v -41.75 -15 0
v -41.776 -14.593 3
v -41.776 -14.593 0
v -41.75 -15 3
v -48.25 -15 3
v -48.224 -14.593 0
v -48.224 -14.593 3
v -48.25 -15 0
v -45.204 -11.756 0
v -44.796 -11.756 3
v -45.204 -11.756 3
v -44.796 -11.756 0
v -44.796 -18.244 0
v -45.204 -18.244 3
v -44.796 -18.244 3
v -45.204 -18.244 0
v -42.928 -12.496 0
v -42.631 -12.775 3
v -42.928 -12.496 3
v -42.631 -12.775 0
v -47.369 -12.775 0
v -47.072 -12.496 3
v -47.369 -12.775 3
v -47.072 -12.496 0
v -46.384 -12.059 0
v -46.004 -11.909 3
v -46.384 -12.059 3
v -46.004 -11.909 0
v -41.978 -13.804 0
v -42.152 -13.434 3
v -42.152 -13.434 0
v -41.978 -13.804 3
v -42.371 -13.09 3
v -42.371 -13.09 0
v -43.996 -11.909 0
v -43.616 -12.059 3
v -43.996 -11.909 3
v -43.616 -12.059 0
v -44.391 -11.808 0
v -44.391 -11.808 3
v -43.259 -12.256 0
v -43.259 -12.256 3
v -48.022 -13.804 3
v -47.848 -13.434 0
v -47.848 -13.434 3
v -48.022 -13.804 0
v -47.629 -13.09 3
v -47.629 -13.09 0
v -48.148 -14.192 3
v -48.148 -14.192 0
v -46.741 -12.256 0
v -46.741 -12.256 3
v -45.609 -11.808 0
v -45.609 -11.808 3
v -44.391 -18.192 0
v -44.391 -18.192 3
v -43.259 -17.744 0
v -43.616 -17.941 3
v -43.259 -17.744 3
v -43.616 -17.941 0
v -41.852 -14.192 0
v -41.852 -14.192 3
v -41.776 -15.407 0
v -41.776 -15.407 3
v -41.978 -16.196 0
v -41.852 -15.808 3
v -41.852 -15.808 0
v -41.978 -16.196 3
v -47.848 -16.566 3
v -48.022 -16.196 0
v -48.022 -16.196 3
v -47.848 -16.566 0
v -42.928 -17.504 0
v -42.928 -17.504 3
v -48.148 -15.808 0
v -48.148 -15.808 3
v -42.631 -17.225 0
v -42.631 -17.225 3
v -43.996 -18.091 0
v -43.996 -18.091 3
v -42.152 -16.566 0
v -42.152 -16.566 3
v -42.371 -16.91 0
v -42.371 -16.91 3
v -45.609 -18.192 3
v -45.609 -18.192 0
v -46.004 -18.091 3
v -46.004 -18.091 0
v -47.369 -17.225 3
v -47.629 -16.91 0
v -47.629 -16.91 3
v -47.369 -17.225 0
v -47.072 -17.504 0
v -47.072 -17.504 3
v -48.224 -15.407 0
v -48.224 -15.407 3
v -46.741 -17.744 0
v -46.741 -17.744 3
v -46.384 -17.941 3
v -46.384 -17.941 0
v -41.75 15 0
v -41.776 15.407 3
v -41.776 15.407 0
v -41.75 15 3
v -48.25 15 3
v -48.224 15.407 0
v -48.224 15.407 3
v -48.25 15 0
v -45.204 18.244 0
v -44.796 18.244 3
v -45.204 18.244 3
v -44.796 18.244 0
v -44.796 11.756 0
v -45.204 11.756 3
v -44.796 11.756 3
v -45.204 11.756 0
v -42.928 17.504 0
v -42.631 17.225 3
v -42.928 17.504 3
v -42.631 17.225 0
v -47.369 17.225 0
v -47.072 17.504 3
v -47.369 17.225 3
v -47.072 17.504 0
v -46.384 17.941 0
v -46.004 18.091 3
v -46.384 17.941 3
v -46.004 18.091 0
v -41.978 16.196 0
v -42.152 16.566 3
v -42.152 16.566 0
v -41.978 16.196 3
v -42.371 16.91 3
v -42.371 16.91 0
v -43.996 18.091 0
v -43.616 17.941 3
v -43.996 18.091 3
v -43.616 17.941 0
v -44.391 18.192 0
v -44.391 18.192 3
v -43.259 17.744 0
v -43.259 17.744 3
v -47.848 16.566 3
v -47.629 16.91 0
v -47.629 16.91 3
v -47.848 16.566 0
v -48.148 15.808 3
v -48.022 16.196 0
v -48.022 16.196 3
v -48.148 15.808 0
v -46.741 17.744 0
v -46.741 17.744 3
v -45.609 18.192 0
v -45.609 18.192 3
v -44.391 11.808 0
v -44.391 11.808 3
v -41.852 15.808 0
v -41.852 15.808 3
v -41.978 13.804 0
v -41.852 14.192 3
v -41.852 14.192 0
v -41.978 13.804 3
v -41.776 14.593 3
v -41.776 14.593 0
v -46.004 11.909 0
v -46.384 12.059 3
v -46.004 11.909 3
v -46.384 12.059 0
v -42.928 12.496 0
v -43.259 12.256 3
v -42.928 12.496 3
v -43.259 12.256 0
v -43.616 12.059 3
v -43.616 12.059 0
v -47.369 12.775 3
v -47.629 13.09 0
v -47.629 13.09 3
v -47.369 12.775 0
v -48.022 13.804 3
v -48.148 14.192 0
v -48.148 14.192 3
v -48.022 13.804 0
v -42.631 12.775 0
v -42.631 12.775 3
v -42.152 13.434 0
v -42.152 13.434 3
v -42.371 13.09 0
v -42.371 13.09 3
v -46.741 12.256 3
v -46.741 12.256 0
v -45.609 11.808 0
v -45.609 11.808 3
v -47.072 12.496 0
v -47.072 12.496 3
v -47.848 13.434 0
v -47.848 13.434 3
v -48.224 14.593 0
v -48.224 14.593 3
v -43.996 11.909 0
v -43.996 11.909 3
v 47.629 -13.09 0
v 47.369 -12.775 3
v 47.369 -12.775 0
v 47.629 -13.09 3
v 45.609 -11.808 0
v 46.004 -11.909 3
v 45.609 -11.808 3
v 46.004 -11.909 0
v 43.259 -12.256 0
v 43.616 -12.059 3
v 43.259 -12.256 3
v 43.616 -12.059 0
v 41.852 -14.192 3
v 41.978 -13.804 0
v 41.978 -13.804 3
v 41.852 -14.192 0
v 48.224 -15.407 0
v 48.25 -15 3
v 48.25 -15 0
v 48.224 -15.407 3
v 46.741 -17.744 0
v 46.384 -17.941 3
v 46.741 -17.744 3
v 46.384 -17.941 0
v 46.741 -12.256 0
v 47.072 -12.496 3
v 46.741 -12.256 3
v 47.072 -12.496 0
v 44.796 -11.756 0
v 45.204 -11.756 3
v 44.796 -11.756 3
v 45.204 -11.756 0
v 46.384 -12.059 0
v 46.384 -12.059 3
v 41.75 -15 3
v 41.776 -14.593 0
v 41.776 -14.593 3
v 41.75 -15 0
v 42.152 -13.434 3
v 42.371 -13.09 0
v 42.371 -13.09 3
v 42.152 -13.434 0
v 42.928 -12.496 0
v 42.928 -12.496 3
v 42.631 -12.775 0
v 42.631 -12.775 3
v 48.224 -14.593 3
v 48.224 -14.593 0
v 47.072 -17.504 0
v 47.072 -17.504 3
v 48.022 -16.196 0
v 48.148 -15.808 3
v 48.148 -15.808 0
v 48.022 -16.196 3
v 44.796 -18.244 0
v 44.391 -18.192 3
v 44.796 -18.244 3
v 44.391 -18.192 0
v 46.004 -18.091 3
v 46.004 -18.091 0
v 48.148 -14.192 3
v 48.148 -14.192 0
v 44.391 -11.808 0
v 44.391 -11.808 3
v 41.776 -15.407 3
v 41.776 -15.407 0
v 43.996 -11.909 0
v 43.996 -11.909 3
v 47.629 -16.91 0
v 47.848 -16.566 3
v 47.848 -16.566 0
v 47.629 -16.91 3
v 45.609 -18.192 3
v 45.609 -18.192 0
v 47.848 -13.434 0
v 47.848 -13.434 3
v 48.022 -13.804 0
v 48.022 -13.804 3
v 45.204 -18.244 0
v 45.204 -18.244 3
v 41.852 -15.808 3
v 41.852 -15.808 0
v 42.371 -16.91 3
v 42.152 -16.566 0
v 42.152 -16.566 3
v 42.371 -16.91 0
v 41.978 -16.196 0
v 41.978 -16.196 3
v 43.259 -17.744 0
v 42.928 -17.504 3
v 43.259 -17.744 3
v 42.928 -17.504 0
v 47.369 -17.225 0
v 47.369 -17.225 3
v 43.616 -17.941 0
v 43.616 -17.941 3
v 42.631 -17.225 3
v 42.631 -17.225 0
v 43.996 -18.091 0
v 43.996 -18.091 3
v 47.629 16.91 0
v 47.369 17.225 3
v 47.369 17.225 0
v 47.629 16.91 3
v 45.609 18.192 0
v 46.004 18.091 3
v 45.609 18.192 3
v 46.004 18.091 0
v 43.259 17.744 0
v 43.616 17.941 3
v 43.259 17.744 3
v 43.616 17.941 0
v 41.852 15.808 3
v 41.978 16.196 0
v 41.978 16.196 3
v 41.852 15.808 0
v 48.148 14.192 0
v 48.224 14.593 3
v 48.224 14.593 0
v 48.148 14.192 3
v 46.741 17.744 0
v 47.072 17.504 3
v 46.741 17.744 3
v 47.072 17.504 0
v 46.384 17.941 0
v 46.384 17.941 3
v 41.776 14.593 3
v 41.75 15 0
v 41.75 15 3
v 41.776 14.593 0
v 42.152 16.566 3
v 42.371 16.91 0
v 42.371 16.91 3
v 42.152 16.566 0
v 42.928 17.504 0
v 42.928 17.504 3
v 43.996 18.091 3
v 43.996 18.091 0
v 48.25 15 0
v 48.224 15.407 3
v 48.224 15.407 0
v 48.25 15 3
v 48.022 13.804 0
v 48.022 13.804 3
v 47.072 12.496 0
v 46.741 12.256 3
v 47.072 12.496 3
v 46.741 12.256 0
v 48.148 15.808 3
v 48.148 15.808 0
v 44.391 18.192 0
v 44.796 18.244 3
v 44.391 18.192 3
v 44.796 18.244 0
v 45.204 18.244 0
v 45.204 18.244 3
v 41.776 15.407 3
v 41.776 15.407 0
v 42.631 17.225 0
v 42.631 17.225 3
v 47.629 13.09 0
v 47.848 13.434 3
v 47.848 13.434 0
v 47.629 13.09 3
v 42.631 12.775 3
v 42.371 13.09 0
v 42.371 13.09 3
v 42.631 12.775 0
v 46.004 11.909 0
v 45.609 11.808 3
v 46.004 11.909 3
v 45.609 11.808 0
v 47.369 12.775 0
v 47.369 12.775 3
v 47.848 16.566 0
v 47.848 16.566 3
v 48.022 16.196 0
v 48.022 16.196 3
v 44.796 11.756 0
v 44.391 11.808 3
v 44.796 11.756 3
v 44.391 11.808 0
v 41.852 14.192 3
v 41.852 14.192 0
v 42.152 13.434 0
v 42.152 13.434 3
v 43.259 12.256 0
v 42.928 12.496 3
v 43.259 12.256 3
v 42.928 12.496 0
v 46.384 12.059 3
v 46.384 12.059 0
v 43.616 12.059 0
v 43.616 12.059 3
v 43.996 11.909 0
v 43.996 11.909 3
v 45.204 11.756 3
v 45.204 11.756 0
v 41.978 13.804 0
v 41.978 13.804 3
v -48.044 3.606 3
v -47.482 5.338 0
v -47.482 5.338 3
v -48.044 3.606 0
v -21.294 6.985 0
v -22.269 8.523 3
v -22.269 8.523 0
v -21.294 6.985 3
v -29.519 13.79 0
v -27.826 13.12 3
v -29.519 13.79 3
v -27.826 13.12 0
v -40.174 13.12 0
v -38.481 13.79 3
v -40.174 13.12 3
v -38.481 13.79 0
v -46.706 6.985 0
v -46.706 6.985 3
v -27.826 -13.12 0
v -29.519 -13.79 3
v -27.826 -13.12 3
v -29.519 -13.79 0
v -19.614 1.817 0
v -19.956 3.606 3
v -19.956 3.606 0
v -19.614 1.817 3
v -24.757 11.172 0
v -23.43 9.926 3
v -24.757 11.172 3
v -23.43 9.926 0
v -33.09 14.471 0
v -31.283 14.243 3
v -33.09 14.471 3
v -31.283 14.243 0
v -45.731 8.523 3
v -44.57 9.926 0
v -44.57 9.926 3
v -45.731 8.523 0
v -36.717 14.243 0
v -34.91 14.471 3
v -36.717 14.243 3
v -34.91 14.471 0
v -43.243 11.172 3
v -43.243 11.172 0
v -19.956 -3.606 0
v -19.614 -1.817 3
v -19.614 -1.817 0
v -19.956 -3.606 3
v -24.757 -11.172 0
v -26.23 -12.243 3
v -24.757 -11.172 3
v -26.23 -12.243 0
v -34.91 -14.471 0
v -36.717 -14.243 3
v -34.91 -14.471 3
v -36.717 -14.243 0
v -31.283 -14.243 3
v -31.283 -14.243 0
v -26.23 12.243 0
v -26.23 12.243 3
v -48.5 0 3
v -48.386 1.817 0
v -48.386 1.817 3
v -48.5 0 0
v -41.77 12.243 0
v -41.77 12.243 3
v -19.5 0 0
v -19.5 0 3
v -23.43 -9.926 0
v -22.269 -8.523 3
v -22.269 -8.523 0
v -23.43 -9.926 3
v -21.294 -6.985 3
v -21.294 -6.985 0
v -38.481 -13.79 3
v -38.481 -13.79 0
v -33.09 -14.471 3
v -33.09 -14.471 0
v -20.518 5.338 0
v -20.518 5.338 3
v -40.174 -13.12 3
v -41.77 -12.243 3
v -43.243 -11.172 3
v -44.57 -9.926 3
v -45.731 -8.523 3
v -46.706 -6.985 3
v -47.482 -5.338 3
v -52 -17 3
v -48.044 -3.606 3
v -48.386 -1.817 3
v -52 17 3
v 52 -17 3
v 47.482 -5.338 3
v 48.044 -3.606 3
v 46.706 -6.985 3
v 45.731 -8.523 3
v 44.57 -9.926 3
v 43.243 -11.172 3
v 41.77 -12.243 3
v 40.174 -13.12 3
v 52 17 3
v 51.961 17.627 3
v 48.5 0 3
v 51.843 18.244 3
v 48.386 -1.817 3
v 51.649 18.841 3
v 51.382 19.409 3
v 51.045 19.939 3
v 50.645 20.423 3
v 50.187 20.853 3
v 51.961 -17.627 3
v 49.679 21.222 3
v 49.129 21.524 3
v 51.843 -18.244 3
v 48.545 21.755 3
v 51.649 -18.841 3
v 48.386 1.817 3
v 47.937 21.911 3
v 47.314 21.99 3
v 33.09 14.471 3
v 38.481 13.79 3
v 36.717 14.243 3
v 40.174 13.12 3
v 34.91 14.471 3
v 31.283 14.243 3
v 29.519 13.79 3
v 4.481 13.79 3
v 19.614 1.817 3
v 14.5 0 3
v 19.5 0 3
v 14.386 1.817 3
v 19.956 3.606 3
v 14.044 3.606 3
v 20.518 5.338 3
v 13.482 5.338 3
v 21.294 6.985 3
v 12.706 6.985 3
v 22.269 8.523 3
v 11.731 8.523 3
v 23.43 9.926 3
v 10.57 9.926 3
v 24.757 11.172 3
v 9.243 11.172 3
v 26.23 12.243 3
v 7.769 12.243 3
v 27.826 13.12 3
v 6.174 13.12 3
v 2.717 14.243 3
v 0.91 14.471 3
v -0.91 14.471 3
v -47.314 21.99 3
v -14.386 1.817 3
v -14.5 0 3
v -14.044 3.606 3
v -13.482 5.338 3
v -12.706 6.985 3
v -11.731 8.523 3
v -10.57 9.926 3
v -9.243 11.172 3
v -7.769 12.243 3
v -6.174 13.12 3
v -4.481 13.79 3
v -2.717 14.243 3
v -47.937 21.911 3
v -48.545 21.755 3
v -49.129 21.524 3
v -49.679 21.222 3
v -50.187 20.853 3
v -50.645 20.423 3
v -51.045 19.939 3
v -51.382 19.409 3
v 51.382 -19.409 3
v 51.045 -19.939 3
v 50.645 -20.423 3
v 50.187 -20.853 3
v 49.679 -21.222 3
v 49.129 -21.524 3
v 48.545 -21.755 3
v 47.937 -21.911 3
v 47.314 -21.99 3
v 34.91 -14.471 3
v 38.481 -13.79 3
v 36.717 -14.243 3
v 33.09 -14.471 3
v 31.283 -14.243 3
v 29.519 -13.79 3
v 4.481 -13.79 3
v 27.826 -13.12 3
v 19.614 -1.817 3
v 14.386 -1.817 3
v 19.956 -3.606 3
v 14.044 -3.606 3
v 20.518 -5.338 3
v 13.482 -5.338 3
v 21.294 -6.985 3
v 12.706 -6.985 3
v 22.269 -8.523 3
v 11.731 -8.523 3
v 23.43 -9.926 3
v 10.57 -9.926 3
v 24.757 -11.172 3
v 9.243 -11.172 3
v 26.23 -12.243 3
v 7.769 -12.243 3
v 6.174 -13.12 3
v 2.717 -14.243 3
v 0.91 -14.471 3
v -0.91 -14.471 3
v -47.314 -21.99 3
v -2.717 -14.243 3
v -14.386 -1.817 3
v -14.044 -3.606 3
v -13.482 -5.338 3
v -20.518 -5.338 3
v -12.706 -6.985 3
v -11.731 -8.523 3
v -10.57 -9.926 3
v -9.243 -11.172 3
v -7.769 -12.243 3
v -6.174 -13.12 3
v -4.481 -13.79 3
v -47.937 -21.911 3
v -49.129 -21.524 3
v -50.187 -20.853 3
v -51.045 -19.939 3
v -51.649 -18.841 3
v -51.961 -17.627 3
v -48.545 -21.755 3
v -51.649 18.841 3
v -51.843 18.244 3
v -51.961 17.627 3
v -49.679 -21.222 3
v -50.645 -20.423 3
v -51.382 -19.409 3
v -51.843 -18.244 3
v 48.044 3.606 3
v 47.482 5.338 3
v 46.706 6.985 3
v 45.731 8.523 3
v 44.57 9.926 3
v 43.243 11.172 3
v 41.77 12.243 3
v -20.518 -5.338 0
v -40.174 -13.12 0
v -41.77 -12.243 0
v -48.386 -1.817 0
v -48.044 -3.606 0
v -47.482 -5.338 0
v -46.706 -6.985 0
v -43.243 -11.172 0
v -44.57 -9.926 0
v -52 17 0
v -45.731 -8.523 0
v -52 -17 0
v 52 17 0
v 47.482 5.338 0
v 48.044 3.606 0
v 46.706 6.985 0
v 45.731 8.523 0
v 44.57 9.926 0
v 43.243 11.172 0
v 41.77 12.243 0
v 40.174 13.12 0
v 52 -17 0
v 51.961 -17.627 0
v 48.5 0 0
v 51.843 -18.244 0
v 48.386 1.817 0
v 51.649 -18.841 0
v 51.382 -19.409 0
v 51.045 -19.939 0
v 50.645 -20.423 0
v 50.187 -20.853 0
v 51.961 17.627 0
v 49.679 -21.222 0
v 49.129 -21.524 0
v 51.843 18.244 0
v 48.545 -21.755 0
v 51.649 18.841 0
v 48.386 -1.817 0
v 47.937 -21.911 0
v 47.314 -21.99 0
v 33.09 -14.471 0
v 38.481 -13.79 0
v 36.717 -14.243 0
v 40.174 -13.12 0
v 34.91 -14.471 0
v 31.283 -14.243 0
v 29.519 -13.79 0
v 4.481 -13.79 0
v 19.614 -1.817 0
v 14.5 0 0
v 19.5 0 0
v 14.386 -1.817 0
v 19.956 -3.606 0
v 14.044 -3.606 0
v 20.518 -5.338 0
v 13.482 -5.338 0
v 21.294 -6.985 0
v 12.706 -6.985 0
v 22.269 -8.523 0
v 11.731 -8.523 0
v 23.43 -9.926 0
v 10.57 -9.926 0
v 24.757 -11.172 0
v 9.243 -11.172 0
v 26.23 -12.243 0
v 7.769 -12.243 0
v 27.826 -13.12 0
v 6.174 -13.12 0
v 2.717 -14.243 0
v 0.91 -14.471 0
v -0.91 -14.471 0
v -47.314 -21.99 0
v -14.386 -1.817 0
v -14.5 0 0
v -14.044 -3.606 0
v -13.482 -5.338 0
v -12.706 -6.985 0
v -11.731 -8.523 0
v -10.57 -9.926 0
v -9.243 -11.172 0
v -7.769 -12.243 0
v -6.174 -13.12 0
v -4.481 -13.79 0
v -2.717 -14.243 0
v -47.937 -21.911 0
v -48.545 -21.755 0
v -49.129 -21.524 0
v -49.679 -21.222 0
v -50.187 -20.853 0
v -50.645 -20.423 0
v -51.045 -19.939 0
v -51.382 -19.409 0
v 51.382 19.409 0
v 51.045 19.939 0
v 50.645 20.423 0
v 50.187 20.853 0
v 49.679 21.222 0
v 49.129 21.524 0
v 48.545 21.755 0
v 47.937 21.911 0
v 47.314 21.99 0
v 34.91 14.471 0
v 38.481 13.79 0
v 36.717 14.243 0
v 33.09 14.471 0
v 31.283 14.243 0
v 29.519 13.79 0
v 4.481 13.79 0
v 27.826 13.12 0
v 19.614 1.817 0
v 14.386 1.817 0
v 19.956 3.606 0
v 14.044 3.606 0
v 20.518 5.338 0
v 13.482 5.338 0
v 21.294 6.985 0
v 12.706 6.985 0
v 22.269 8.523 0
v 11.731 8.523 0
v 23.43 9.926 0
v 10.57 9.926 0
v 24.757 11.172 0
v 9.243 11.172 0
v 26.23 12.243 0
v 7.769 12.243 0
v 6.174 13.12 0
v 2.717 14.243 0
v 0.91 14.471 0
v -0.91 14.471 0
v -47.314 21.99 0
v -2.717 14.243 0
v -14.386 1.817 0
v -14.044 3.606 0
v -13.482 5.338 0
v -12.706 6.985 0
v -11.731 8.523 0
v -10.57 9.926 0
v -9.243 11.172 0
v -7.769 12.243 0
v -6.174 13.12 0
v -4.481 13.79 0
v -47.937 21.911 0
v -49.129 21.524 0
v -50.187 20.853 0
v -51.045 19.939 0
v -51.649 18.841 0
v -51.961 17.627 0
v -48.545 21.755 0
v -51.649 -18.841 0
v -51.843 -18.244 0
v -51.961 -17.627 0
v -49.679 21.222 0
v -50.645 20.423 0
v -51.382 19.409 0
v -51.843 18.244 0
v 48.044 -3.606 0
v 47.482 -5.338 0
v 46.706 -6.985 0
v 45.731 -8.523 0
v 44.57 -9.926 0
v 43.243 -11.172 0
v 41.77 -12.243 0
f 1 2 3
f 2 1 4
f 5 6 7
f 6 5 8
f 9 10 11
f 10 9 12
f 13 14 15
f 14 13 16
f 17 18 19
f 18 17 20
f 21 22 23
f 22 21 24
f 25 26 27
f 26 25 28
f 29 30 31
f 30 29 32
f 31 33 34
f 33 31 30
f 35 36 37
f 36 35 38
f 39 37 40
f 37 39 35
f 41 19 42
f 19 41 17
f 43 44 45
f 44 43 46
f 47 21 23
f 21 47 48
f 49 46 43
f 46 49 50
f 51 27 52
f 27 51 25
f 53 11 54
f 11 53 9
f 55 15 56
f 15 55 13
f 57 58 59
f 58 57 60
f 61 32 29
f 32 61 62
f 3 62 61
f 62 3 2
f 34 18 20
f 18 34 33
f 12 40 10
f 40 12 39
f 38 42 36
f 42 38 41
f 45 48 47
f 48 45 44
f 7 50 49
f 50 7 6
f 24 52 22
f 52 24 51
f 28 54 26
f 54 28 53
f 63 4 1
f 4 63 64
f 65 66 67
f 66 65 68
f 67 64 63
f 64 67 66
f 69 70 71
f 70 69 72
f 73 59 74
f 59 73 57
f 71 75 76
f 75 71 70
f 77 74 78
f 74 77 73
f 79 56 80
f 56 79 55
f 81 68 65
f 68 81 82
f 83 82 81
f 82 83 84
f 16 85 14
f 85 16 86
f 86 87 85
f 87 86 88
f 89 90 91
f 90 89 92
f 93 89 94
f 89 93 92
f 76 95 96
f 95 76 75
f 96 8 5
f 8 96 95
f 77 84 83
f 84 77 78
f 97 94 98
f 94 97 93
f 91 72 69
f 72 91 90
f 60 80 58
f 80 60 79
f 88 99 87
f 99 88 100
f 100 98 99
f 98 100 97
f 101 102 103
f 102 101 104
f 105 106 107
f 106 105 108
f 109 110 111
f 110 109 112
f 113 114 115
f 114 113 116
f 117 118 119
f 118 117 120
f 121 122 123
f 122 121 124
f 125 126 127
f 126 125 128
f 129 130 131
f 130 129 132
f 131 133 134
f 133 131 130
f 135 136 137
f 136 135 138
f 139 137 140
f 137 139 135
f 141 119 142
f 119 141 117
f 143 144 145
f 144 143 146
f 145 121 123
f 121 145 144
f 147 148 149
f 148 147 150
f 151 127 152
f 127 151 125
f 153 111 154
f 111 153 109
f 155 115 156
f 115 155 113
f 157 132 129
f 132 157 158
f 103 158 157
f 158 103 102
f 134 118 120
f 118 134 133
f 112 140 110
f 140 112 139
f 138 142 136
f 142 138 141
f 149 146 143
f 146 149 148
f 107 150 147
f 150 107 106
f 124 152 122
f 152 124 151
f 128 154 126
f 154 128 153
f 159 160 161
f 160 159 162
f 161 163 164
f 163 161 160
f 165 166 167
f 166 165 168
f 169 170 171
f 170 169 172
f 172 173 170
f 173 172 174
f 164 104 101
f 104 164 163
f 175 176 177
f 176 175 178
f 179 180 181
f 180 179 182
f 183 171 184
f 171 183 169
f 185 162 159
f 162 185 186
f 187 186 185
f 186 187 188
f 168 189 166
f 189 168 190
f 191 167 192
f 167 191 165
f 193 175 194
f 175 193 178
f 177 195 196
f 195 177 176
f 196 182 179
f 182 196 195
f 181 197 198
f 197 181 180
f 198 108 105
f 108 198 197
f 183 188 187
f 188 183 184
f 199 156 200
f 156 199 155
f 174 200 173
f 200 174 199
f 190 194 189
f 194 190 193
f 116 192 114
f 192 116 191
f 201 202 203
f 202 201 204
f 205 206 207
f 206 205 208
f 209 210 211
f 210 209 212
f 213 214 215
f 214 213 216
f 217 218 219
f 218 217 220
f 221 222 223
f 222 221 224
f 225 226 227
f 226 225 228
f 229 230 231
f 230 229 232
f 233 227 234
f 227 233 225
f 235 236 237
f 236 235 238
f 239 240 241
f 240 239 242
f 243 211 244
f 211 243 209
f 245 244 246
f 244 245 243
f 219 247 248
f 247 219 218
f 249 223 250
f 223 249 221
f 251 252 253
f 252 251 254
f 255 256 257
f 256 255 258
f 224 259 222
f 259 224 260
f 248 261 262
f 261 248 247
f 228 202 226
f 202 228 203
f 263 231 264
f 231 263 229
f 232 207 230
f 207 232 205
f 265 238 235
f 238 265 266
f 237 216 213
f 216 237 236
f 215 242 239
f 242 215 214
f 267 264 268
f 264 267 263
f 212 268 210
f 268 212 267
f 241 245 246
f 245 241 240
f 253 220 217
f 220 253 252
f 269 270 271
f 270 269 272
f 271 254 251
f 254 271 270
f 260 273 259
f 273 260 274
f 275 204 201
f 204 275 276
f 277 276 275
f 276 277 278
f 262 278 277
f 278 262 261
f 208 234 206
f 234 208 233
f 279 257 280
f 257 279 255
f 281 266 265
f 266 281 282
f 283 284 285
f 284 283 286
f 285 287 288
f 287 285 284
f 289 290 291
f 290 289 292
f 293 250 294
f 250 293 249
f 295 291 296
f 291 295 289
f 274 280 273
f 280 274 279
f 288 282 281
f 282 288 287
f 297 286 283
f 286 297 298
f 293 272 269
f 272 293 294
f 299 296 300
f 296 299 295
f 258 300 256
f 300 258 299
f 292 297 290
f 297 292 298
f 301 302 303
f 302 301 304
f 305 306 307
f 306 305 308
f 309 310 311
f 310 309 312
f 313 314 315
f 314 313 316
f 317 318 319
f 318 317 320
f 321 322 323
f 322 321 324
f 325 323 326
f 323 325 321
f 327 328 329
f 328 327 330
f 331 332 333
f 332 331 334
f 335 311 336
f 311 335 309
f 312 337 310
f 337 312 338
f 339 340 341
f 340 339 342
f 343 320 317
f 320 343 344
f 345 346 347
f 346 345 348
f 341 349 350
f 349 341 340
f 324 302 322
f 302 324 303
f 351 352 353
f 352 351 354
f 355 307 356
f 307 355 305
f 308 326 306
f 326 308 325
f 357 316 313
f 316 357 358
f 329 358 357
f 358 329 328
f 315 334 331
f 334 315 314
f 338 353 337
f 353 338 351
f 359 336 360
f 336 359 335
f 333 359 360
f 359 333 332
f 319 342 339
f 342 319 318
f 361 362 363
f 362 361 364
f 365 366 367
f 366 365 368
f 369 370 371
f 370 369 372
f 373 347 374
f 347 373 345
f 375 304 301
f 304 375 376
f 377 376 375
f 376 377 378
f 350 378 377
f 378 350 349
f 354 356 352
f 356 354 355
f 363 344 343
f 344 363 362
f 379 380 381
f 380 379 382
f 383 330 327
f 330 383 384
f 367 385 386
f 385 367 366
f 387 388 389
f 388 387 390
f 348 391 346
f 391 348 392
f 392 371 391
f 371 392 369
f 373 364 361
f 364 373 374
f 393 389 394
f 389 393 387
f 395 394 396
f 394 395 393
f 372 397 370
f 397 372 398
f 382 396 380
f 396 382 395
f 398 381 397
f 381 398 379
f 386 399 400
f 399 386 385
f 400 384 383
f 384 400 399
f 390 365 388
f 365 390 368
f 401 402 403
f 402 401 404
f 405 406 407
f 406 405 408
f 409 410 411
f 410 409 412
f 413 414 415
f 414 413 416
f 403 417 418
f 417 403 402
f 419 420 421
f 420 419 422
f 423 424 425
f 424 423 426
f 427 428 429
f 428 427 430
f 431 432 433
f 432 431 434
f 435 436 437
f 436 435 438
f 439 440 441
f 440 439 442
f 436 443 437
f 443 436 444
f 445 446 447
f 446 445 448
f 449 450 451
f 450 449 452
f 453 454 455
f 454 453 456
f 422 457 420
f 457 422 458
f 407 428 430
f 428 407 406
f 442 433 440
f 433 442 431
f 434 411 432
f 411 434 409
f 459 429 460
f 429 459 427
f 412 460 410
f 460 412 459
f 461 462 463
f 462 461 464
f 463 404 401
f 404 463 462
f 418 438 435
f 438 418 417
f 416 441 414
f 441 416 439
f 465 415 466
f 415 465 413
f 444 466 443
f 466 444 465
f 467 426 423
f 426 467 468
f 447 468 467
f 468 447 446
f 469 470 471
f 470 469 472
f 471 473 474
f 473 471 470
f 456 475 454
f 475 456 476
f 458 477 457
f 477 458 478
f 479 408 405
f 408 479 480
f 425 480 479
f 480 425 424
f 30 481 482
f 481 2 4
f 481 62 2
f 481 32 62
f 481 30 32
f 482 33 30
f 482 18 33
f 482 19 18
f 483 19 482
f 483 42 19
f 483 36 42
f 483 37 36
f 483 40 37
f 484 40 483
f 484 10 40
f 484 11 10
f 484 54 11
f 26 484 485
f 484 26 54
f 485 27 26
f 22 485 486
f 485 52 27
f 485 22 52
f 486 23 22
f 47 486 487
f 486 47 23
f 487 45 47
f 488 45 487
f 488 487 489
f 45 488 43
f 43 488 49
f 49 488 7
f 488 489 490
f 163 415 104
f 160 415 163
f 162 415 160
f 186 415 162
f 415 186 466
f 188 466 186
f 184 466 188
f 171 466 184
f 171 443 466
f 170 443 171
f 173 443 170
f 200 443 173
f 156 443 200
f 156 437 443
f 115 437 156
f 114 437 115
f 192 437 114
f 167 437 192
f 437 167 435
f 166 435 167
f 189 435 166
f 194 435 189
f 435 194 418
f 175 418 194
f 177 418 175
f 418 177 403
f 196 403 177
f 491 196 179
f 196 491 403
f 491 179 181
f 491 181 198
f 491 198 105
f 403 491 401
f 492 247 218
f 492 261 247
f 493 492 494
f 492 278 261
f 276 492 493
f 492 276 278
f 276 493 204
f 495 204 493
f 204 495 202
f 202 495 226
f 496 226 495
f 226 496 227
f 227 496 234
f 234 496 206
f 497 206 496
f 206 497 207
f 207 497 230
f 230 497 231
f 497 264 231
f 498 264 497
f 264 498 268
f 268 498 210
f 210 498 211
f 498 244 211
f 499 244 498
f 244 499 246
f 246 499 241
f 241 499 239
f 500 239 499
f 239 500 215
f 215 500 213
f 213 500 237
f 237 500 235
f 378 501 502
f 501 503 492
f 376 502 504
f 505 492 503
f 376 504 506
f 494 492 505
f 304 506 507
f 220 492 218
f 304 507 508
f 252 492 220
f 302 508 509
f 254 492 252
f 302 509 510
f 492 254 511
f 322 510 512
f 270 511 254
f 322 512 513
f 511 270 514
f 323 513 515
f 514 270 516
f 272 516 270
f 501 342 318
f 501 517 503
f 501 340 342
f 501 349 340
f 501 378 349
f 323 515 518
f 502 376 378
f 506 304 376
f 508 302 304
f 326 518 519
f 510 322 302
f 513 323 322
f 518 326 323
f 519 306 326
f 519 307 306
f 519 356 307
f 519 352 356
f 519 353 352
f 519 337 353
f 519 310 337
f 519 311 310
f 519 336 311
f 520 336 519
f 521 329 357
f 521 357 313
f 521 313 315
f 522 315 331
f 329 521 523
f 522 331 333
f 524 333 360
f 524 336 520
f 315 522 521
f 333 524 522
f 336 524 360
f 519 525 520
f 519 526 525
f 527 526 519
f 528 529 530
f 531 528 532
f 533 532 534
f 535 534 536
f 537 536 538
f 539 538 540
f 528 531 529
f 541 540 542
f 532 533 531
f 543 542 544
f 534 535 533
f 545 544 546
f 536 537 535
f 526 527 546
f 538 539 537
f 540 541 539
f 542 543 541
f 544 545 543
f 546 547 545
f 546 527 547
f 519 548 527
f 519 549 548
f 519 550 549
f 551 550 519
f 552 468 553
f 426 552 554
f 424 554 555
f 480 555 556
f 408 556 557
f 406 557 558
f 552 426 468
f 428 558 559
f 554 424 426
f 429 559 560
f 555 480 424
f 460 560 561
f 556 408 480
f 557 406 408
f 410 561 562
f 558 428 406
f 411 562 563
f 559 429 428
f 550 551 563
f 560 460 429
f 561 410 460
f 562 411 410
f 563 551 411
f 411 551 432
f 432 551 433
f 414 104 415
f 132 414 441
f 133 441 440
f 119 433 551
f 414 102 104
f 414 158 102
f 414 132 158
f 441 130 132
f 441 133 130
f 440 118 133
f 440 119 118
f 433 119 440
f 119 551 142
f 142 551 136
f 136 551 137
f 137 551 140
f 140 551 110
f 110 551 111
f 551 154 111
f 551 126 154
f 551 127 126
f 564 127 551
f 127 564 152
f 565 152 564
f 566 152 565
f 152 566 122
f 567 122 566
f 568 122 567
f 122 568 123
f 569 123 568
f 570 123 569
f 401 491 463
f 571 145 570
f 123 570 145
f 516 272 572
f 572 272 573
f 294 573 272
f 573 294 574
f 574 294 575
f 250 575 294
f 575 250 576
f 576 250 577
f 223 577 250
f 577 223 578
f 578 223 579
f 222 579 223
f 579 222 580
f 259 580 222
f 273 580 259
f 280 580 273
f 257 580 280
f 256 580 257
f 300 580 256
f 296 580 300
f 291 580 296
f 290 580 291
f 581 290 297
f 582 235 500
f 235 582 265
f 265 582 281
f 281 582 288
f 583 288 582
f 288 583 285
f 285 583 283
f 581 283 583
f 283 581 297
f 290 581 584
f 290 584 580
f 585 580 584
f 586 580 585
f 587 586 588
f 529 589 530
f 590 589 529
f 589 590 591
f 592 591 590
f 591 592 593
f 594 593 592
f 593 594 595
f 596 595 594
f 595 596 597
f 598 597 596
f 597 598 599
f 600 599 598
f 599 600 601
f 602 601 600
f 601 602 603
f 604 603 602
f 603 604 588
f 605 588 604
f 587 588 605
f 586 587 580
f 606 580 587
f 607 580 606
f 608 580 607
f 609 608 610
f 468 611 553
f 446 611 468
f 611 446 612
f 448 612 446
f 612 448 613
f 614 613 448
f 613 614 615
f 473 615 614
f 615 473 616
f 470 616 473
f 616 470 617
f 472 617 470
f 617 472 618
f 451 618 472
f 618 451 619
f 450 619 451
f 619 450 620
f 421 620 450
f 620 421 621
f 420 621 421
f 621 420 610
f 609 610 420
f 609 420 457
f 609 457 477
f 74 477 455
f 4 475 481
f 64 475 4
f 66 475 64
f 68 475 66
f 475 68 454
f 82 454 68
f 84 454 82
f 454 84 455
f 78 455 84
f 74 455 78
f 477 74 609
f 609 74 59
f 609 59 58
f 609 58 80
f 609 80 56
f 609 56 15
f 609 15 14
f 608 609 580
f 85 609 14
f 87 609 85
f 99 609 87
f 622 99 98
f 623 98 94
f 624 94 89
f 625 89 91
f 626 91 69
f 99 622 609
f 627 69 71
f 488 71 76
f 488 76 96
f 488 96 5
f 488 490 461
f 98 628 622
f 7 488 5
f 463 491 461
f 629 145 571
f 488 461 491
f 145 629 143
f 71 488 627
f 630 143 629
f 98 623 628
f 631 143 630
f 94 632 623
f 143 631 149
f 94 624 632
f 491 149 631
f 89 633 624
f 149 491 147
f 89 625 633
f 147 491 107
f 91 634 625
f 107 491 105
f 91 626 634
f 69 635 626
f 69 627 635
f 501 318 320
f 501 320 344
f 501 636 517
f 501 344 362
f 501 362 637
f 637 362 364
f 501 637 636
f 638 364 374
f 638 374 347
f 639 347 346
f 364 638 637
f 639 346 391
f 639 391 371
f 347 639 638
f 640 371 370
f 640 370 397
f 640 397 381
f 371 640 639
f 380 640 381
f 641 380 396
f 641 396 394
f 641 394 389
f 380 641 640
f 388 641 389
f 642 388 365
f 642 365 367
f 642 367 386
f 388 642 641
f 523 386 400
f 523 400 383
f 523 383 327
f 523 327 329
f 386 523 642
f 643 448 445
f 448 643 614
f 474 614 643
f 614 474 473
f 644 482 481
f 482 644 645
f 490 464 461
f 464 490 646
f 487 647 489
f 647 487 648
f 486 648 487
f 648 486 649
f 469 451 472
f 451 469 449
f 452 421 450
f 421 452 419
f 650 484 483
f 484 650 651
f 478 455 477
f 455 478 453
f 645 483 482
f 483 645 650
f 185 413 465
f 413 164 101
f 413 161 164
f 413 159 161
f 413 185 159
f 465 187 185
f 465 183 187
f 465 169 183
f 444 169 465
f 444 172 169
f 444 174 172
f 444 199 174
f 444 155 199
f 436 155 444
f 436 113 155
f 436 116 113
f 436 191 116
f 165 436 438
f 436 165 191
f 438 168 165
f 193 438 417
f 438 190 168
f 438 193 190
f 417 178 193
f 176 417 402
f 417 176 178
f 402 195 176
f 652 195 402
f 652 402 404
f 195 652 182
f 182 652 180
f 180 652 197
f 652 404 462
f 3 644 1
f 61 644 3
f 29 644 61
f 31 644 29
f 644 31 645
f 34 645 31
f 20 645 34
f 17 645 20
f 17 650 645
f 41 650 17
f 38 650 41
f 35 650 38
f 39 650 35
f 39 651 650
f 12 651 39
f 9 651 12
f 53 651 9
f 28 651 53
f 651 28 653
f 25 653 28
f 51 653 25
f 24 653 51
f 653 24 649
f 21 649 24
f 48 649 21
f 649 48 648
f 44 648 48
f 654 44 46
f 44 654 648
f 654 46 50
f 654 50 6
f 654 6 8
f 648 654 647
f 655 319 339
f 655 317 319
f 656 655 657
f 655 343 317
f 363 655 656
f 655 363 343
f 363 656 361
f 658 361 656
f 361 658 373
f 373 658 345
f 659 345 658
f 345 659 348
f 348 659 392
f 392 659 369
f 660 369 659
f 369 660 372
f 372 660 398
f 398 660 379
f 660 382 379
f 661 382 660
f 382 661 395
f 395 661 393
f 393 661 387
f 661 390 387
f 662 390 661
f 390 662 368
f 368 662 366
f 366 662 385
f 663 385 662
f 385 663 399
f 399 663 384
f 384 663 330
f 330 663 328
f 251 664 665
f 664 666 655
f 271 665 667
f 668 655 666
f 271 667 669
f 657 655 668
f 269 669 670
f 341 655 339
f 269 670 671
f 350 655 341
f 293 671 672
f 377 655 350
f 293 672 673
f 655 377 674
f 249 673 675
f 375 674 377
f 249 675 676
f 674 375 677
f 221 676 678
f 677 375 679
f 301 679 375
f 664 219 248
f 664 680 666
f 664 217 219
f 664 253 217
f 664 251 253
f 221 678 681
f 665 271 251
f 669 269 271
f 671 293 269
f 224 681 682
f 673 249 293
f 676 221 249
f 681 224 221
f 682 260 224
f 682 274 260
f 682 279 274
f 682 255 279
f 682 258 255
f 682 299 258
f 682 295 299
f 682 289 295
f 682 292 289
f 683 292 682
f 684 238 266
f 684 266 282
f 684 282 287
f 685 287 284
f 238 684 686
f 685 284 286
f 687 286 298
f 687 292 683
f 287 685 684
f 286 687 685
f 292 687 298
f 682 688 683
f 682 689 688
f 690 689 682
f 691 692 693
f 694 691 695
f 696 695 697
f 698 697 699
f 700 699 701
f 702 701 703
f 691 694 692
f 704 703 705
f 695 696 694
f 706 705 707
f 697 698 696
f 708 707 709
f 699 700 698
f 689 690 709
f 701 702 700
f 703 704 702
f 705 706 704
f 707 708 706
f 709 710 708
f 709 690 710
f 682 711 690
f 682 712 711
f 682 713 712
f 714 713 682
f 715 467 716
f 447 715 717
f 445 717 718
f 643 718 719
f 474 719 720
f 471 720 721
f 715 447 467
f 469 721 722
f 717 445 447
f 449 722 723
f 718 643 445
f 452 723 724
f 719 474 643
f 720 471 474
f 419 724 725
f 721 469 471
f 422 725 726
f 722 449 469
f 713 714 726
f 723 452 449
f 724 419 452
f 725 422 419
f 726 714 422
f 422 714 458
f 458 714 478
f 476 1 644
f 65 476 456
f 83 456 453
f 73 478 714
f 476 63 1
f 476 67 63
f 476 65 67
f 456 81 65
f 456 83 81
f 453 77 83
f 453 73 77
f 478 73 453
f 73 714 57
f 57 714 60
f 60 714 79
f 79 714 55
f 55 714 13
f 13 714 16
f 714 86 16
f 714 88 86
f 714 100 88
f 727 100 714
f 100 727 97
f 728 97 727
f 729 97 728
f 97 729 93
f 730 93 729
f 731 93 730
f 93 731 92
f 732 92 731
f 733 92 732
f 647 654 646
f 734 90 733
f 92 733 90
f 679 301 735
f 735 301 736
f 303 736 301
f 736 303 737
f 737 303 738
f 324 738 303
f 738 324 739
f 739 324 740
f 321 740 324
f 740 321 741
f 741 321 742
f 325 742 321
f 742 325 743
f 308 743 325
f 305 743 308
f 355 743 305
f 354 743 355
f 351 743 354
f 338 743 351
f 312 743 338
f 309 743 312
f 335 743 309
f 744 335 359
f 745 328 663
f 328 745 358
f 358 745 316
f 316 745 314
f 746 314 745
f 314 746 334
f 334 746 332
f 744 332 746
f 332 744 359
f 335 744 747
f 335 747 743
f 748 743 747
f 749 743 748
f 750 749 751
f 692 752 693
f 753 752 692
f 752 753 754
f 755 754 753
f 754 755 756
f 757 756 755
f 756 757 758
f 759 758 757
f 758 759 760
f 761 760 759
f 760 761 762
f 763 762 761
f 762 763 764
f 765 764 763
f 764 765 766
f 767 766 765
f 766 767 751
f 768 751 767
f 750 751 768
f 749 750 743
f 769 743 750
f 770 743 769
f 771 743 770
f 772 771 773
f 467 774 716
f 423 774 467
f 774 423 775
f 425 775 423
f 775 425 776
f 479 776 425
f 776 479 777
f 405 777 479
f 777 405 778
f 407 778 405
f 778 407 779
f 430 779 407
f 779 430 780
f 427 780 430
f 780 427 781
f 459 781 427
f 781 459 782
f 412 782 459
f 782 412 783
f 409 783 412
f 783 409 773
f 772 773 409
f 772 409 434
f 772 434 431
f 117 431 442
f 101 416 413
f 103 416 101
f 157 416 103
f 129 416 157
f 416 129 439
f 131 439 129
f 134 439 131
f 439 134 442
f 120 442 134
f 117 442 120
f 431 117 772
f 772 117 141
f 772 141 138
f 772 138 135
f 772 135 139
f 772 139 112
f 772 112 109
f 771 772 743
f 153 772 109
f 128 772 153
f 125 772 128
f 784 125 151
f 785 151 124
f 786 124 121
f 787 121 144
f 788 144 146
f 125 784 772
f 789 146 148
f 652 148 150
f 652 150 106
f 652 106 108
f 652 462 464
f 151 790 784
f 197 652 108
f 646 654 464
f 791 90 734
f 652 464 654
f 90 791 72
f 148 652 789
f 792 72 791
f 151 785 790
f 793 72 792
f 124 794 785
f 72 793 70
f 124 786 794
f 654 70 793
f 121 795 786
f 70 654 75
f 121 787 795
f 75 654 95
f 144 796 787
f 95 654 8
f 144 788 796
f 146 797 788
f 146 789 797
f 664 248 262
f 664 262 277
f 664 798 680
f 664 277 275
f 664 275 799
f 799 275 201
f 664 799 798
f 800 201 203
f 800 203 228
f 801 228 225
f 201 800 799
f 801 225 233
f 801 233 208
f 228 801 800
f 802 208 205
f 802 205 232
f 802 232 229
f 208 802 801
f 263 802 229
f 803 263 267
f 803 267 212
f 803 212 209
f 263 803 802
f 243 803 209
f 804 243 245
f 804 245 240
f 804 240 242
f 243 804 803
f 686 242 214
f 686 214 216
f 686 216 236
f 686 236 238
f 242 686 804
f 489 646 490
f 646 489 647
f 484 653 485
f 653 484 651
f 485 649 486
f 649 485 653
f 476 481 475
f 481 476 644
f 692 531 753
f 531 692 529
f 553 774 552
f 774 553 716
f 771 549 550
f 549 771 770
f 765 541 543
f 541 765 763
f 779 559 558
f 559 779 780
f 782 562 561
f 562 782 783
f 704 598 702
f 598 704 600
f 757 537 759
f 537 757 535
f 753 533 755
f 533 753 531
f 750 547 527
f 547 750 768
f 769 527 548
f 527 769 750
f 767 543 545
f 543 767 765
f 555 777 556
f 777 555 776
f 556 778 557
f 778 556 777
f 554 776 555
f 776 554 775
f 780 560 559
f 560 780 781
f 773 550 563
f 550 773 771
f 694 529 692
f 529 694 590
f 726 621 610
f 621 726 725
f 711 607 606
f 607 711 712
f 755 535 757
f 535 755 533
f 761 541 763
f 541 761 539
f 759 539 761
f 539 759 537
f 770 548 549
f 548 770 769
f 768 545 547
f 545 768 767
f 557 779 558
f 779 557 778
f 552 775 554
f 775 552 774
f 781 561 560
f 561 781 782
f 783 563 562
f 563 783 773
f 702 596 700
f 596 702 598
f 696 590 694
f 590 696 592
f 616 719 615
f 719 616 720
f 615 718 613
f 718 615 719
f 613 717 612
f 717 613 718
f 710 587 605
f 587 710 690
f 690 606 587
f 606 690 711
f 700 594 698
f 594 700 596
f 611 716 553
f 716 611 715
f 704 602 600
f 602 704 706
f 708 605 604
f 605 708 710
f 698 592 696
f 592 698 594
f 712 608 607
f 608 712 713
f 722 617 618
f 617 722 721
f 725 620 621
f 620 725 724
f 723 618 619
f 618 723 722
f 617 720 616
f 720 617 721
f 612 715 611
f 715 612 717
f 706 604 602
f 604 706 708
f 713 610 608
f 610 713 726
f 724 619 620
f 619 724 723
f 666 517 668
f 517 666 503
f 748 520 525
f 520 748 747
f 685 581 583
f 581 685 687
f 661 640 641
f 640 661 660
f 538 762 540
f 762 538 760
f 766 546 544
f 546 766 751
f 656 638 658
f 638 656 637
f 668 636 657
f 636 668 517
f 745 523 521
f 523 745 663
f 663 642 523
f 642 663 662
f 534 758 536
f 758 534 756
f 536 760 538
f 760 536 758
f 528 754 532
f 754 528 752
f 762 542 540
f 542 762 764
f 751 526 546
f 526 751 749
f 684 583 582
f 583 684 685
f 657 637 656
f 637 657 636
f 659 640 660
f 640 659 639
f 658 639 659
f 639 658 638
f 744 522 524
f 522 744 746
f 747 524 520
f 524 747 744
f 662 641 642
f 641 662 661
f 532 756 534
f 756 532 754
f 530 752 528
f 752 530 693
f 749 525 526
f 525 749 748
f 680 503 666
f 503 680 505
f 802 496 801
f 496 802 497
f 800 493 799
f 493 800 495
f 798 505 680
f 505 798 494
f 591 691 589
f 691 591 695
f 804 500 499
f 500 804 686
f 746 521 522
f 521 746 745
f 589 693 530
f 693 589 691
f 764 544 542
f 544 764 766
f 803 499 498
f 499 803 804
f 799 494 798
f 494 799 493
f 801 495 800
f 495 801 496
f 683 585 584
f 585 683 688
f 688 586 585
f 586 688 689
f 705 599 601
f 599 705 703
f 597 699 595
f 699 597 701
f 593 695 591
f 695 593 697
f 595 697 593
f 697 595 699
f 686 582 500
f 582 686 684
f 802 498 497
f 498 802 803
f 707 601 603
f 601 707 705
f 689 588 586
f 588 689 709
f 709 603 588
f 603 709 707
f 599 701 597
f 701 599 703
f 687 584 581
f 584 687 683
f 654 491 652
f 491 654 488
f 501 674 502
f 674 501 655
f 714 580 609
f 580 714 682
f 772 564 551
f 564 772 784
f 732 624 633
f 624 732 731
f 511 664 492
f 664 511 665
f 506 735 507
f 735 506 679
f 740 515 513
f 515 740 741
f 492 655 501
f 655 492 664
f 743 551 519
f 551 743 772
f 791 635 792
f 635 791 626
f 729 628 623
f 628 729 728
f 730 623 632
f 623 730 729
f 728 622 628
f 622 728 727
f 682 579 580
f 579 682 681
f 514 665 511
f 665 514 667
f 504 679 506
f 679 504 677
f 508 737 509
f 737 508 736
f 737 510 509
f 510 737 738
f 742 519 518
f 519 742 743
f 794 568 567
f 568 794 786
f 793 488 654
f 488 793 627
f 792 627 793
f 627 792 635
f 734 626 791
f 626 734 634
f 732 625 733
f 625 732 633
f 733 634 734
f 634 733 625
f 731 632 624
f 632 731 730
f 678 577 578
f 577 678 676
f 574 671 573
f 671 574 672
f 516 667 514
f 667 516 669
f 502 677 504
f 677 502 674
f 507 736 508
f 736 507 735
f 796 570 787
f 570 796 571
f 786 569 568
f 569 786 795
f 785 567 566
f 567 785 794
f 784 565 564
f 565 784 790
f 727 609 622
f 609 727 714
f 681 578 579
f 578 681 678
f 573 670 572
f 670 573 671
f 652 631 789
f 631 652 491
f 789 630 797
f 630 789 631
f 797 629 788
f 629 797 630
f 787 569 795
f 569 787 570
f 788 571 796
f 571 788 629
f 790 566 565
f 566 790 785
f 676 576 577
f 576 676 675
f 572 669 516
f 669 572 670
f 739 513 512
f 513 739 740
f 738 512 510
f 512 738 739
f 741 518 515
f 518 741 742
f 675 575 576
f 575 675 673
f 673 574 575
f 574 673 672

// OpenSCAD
$fn = 50;


difference() {
	union() {
		hull() {
			translate(v = [-47.0000000000, 17.0000000000, 0]) {
				cylinder(h = 3, r = 5);
			}
			translate(v = [47.0000000000, 17.0000000000, 0]) {
				cylinder(h = 3, r = 5);
			}
			translate(v = [-47.0000000000, -17.0000000000, 0]) {
				cylinder(h = 3, r = 5);
			}
			translate(v = [47.0000000000, -17.0000000000, 0]) {
				cylinder(h = 3, r = 5);
			}
		}
	}
	union() {
		#translate(v = [-45.0000000000, -15.0000000000, -100.0000000000]) {
			cylinder(h = 200, r = 3.2500000000);
		}
		#translate(v = [-45.0000000000, 15.0000000000, -100.0000000000]) {
			cylinder(h = 200, r = 3.2500000000);
		}
		#translate(v = [45.0000000000, -15.0000000000, -100.0000000000]) {
			cylinder(h = 200, r = 3.2500000000);
		}
		#translate(v = [45.0000000000, 15.0000000000, -100.0000000000]) {
			cylinder(h = 200, r = 3.2500000000);
		}
		#translate(v = [-34.0000000000, 0, 0]) {
			cylinder(h = 3, r = 14.5000000000);
		}
		#cylinder(h = 3, r = 14.5000000000);
		#translate(v = [34.0000000000, 0, 0]) {
			cylinder(h = 3, r = 14.5000000000);
		}
	}
}
